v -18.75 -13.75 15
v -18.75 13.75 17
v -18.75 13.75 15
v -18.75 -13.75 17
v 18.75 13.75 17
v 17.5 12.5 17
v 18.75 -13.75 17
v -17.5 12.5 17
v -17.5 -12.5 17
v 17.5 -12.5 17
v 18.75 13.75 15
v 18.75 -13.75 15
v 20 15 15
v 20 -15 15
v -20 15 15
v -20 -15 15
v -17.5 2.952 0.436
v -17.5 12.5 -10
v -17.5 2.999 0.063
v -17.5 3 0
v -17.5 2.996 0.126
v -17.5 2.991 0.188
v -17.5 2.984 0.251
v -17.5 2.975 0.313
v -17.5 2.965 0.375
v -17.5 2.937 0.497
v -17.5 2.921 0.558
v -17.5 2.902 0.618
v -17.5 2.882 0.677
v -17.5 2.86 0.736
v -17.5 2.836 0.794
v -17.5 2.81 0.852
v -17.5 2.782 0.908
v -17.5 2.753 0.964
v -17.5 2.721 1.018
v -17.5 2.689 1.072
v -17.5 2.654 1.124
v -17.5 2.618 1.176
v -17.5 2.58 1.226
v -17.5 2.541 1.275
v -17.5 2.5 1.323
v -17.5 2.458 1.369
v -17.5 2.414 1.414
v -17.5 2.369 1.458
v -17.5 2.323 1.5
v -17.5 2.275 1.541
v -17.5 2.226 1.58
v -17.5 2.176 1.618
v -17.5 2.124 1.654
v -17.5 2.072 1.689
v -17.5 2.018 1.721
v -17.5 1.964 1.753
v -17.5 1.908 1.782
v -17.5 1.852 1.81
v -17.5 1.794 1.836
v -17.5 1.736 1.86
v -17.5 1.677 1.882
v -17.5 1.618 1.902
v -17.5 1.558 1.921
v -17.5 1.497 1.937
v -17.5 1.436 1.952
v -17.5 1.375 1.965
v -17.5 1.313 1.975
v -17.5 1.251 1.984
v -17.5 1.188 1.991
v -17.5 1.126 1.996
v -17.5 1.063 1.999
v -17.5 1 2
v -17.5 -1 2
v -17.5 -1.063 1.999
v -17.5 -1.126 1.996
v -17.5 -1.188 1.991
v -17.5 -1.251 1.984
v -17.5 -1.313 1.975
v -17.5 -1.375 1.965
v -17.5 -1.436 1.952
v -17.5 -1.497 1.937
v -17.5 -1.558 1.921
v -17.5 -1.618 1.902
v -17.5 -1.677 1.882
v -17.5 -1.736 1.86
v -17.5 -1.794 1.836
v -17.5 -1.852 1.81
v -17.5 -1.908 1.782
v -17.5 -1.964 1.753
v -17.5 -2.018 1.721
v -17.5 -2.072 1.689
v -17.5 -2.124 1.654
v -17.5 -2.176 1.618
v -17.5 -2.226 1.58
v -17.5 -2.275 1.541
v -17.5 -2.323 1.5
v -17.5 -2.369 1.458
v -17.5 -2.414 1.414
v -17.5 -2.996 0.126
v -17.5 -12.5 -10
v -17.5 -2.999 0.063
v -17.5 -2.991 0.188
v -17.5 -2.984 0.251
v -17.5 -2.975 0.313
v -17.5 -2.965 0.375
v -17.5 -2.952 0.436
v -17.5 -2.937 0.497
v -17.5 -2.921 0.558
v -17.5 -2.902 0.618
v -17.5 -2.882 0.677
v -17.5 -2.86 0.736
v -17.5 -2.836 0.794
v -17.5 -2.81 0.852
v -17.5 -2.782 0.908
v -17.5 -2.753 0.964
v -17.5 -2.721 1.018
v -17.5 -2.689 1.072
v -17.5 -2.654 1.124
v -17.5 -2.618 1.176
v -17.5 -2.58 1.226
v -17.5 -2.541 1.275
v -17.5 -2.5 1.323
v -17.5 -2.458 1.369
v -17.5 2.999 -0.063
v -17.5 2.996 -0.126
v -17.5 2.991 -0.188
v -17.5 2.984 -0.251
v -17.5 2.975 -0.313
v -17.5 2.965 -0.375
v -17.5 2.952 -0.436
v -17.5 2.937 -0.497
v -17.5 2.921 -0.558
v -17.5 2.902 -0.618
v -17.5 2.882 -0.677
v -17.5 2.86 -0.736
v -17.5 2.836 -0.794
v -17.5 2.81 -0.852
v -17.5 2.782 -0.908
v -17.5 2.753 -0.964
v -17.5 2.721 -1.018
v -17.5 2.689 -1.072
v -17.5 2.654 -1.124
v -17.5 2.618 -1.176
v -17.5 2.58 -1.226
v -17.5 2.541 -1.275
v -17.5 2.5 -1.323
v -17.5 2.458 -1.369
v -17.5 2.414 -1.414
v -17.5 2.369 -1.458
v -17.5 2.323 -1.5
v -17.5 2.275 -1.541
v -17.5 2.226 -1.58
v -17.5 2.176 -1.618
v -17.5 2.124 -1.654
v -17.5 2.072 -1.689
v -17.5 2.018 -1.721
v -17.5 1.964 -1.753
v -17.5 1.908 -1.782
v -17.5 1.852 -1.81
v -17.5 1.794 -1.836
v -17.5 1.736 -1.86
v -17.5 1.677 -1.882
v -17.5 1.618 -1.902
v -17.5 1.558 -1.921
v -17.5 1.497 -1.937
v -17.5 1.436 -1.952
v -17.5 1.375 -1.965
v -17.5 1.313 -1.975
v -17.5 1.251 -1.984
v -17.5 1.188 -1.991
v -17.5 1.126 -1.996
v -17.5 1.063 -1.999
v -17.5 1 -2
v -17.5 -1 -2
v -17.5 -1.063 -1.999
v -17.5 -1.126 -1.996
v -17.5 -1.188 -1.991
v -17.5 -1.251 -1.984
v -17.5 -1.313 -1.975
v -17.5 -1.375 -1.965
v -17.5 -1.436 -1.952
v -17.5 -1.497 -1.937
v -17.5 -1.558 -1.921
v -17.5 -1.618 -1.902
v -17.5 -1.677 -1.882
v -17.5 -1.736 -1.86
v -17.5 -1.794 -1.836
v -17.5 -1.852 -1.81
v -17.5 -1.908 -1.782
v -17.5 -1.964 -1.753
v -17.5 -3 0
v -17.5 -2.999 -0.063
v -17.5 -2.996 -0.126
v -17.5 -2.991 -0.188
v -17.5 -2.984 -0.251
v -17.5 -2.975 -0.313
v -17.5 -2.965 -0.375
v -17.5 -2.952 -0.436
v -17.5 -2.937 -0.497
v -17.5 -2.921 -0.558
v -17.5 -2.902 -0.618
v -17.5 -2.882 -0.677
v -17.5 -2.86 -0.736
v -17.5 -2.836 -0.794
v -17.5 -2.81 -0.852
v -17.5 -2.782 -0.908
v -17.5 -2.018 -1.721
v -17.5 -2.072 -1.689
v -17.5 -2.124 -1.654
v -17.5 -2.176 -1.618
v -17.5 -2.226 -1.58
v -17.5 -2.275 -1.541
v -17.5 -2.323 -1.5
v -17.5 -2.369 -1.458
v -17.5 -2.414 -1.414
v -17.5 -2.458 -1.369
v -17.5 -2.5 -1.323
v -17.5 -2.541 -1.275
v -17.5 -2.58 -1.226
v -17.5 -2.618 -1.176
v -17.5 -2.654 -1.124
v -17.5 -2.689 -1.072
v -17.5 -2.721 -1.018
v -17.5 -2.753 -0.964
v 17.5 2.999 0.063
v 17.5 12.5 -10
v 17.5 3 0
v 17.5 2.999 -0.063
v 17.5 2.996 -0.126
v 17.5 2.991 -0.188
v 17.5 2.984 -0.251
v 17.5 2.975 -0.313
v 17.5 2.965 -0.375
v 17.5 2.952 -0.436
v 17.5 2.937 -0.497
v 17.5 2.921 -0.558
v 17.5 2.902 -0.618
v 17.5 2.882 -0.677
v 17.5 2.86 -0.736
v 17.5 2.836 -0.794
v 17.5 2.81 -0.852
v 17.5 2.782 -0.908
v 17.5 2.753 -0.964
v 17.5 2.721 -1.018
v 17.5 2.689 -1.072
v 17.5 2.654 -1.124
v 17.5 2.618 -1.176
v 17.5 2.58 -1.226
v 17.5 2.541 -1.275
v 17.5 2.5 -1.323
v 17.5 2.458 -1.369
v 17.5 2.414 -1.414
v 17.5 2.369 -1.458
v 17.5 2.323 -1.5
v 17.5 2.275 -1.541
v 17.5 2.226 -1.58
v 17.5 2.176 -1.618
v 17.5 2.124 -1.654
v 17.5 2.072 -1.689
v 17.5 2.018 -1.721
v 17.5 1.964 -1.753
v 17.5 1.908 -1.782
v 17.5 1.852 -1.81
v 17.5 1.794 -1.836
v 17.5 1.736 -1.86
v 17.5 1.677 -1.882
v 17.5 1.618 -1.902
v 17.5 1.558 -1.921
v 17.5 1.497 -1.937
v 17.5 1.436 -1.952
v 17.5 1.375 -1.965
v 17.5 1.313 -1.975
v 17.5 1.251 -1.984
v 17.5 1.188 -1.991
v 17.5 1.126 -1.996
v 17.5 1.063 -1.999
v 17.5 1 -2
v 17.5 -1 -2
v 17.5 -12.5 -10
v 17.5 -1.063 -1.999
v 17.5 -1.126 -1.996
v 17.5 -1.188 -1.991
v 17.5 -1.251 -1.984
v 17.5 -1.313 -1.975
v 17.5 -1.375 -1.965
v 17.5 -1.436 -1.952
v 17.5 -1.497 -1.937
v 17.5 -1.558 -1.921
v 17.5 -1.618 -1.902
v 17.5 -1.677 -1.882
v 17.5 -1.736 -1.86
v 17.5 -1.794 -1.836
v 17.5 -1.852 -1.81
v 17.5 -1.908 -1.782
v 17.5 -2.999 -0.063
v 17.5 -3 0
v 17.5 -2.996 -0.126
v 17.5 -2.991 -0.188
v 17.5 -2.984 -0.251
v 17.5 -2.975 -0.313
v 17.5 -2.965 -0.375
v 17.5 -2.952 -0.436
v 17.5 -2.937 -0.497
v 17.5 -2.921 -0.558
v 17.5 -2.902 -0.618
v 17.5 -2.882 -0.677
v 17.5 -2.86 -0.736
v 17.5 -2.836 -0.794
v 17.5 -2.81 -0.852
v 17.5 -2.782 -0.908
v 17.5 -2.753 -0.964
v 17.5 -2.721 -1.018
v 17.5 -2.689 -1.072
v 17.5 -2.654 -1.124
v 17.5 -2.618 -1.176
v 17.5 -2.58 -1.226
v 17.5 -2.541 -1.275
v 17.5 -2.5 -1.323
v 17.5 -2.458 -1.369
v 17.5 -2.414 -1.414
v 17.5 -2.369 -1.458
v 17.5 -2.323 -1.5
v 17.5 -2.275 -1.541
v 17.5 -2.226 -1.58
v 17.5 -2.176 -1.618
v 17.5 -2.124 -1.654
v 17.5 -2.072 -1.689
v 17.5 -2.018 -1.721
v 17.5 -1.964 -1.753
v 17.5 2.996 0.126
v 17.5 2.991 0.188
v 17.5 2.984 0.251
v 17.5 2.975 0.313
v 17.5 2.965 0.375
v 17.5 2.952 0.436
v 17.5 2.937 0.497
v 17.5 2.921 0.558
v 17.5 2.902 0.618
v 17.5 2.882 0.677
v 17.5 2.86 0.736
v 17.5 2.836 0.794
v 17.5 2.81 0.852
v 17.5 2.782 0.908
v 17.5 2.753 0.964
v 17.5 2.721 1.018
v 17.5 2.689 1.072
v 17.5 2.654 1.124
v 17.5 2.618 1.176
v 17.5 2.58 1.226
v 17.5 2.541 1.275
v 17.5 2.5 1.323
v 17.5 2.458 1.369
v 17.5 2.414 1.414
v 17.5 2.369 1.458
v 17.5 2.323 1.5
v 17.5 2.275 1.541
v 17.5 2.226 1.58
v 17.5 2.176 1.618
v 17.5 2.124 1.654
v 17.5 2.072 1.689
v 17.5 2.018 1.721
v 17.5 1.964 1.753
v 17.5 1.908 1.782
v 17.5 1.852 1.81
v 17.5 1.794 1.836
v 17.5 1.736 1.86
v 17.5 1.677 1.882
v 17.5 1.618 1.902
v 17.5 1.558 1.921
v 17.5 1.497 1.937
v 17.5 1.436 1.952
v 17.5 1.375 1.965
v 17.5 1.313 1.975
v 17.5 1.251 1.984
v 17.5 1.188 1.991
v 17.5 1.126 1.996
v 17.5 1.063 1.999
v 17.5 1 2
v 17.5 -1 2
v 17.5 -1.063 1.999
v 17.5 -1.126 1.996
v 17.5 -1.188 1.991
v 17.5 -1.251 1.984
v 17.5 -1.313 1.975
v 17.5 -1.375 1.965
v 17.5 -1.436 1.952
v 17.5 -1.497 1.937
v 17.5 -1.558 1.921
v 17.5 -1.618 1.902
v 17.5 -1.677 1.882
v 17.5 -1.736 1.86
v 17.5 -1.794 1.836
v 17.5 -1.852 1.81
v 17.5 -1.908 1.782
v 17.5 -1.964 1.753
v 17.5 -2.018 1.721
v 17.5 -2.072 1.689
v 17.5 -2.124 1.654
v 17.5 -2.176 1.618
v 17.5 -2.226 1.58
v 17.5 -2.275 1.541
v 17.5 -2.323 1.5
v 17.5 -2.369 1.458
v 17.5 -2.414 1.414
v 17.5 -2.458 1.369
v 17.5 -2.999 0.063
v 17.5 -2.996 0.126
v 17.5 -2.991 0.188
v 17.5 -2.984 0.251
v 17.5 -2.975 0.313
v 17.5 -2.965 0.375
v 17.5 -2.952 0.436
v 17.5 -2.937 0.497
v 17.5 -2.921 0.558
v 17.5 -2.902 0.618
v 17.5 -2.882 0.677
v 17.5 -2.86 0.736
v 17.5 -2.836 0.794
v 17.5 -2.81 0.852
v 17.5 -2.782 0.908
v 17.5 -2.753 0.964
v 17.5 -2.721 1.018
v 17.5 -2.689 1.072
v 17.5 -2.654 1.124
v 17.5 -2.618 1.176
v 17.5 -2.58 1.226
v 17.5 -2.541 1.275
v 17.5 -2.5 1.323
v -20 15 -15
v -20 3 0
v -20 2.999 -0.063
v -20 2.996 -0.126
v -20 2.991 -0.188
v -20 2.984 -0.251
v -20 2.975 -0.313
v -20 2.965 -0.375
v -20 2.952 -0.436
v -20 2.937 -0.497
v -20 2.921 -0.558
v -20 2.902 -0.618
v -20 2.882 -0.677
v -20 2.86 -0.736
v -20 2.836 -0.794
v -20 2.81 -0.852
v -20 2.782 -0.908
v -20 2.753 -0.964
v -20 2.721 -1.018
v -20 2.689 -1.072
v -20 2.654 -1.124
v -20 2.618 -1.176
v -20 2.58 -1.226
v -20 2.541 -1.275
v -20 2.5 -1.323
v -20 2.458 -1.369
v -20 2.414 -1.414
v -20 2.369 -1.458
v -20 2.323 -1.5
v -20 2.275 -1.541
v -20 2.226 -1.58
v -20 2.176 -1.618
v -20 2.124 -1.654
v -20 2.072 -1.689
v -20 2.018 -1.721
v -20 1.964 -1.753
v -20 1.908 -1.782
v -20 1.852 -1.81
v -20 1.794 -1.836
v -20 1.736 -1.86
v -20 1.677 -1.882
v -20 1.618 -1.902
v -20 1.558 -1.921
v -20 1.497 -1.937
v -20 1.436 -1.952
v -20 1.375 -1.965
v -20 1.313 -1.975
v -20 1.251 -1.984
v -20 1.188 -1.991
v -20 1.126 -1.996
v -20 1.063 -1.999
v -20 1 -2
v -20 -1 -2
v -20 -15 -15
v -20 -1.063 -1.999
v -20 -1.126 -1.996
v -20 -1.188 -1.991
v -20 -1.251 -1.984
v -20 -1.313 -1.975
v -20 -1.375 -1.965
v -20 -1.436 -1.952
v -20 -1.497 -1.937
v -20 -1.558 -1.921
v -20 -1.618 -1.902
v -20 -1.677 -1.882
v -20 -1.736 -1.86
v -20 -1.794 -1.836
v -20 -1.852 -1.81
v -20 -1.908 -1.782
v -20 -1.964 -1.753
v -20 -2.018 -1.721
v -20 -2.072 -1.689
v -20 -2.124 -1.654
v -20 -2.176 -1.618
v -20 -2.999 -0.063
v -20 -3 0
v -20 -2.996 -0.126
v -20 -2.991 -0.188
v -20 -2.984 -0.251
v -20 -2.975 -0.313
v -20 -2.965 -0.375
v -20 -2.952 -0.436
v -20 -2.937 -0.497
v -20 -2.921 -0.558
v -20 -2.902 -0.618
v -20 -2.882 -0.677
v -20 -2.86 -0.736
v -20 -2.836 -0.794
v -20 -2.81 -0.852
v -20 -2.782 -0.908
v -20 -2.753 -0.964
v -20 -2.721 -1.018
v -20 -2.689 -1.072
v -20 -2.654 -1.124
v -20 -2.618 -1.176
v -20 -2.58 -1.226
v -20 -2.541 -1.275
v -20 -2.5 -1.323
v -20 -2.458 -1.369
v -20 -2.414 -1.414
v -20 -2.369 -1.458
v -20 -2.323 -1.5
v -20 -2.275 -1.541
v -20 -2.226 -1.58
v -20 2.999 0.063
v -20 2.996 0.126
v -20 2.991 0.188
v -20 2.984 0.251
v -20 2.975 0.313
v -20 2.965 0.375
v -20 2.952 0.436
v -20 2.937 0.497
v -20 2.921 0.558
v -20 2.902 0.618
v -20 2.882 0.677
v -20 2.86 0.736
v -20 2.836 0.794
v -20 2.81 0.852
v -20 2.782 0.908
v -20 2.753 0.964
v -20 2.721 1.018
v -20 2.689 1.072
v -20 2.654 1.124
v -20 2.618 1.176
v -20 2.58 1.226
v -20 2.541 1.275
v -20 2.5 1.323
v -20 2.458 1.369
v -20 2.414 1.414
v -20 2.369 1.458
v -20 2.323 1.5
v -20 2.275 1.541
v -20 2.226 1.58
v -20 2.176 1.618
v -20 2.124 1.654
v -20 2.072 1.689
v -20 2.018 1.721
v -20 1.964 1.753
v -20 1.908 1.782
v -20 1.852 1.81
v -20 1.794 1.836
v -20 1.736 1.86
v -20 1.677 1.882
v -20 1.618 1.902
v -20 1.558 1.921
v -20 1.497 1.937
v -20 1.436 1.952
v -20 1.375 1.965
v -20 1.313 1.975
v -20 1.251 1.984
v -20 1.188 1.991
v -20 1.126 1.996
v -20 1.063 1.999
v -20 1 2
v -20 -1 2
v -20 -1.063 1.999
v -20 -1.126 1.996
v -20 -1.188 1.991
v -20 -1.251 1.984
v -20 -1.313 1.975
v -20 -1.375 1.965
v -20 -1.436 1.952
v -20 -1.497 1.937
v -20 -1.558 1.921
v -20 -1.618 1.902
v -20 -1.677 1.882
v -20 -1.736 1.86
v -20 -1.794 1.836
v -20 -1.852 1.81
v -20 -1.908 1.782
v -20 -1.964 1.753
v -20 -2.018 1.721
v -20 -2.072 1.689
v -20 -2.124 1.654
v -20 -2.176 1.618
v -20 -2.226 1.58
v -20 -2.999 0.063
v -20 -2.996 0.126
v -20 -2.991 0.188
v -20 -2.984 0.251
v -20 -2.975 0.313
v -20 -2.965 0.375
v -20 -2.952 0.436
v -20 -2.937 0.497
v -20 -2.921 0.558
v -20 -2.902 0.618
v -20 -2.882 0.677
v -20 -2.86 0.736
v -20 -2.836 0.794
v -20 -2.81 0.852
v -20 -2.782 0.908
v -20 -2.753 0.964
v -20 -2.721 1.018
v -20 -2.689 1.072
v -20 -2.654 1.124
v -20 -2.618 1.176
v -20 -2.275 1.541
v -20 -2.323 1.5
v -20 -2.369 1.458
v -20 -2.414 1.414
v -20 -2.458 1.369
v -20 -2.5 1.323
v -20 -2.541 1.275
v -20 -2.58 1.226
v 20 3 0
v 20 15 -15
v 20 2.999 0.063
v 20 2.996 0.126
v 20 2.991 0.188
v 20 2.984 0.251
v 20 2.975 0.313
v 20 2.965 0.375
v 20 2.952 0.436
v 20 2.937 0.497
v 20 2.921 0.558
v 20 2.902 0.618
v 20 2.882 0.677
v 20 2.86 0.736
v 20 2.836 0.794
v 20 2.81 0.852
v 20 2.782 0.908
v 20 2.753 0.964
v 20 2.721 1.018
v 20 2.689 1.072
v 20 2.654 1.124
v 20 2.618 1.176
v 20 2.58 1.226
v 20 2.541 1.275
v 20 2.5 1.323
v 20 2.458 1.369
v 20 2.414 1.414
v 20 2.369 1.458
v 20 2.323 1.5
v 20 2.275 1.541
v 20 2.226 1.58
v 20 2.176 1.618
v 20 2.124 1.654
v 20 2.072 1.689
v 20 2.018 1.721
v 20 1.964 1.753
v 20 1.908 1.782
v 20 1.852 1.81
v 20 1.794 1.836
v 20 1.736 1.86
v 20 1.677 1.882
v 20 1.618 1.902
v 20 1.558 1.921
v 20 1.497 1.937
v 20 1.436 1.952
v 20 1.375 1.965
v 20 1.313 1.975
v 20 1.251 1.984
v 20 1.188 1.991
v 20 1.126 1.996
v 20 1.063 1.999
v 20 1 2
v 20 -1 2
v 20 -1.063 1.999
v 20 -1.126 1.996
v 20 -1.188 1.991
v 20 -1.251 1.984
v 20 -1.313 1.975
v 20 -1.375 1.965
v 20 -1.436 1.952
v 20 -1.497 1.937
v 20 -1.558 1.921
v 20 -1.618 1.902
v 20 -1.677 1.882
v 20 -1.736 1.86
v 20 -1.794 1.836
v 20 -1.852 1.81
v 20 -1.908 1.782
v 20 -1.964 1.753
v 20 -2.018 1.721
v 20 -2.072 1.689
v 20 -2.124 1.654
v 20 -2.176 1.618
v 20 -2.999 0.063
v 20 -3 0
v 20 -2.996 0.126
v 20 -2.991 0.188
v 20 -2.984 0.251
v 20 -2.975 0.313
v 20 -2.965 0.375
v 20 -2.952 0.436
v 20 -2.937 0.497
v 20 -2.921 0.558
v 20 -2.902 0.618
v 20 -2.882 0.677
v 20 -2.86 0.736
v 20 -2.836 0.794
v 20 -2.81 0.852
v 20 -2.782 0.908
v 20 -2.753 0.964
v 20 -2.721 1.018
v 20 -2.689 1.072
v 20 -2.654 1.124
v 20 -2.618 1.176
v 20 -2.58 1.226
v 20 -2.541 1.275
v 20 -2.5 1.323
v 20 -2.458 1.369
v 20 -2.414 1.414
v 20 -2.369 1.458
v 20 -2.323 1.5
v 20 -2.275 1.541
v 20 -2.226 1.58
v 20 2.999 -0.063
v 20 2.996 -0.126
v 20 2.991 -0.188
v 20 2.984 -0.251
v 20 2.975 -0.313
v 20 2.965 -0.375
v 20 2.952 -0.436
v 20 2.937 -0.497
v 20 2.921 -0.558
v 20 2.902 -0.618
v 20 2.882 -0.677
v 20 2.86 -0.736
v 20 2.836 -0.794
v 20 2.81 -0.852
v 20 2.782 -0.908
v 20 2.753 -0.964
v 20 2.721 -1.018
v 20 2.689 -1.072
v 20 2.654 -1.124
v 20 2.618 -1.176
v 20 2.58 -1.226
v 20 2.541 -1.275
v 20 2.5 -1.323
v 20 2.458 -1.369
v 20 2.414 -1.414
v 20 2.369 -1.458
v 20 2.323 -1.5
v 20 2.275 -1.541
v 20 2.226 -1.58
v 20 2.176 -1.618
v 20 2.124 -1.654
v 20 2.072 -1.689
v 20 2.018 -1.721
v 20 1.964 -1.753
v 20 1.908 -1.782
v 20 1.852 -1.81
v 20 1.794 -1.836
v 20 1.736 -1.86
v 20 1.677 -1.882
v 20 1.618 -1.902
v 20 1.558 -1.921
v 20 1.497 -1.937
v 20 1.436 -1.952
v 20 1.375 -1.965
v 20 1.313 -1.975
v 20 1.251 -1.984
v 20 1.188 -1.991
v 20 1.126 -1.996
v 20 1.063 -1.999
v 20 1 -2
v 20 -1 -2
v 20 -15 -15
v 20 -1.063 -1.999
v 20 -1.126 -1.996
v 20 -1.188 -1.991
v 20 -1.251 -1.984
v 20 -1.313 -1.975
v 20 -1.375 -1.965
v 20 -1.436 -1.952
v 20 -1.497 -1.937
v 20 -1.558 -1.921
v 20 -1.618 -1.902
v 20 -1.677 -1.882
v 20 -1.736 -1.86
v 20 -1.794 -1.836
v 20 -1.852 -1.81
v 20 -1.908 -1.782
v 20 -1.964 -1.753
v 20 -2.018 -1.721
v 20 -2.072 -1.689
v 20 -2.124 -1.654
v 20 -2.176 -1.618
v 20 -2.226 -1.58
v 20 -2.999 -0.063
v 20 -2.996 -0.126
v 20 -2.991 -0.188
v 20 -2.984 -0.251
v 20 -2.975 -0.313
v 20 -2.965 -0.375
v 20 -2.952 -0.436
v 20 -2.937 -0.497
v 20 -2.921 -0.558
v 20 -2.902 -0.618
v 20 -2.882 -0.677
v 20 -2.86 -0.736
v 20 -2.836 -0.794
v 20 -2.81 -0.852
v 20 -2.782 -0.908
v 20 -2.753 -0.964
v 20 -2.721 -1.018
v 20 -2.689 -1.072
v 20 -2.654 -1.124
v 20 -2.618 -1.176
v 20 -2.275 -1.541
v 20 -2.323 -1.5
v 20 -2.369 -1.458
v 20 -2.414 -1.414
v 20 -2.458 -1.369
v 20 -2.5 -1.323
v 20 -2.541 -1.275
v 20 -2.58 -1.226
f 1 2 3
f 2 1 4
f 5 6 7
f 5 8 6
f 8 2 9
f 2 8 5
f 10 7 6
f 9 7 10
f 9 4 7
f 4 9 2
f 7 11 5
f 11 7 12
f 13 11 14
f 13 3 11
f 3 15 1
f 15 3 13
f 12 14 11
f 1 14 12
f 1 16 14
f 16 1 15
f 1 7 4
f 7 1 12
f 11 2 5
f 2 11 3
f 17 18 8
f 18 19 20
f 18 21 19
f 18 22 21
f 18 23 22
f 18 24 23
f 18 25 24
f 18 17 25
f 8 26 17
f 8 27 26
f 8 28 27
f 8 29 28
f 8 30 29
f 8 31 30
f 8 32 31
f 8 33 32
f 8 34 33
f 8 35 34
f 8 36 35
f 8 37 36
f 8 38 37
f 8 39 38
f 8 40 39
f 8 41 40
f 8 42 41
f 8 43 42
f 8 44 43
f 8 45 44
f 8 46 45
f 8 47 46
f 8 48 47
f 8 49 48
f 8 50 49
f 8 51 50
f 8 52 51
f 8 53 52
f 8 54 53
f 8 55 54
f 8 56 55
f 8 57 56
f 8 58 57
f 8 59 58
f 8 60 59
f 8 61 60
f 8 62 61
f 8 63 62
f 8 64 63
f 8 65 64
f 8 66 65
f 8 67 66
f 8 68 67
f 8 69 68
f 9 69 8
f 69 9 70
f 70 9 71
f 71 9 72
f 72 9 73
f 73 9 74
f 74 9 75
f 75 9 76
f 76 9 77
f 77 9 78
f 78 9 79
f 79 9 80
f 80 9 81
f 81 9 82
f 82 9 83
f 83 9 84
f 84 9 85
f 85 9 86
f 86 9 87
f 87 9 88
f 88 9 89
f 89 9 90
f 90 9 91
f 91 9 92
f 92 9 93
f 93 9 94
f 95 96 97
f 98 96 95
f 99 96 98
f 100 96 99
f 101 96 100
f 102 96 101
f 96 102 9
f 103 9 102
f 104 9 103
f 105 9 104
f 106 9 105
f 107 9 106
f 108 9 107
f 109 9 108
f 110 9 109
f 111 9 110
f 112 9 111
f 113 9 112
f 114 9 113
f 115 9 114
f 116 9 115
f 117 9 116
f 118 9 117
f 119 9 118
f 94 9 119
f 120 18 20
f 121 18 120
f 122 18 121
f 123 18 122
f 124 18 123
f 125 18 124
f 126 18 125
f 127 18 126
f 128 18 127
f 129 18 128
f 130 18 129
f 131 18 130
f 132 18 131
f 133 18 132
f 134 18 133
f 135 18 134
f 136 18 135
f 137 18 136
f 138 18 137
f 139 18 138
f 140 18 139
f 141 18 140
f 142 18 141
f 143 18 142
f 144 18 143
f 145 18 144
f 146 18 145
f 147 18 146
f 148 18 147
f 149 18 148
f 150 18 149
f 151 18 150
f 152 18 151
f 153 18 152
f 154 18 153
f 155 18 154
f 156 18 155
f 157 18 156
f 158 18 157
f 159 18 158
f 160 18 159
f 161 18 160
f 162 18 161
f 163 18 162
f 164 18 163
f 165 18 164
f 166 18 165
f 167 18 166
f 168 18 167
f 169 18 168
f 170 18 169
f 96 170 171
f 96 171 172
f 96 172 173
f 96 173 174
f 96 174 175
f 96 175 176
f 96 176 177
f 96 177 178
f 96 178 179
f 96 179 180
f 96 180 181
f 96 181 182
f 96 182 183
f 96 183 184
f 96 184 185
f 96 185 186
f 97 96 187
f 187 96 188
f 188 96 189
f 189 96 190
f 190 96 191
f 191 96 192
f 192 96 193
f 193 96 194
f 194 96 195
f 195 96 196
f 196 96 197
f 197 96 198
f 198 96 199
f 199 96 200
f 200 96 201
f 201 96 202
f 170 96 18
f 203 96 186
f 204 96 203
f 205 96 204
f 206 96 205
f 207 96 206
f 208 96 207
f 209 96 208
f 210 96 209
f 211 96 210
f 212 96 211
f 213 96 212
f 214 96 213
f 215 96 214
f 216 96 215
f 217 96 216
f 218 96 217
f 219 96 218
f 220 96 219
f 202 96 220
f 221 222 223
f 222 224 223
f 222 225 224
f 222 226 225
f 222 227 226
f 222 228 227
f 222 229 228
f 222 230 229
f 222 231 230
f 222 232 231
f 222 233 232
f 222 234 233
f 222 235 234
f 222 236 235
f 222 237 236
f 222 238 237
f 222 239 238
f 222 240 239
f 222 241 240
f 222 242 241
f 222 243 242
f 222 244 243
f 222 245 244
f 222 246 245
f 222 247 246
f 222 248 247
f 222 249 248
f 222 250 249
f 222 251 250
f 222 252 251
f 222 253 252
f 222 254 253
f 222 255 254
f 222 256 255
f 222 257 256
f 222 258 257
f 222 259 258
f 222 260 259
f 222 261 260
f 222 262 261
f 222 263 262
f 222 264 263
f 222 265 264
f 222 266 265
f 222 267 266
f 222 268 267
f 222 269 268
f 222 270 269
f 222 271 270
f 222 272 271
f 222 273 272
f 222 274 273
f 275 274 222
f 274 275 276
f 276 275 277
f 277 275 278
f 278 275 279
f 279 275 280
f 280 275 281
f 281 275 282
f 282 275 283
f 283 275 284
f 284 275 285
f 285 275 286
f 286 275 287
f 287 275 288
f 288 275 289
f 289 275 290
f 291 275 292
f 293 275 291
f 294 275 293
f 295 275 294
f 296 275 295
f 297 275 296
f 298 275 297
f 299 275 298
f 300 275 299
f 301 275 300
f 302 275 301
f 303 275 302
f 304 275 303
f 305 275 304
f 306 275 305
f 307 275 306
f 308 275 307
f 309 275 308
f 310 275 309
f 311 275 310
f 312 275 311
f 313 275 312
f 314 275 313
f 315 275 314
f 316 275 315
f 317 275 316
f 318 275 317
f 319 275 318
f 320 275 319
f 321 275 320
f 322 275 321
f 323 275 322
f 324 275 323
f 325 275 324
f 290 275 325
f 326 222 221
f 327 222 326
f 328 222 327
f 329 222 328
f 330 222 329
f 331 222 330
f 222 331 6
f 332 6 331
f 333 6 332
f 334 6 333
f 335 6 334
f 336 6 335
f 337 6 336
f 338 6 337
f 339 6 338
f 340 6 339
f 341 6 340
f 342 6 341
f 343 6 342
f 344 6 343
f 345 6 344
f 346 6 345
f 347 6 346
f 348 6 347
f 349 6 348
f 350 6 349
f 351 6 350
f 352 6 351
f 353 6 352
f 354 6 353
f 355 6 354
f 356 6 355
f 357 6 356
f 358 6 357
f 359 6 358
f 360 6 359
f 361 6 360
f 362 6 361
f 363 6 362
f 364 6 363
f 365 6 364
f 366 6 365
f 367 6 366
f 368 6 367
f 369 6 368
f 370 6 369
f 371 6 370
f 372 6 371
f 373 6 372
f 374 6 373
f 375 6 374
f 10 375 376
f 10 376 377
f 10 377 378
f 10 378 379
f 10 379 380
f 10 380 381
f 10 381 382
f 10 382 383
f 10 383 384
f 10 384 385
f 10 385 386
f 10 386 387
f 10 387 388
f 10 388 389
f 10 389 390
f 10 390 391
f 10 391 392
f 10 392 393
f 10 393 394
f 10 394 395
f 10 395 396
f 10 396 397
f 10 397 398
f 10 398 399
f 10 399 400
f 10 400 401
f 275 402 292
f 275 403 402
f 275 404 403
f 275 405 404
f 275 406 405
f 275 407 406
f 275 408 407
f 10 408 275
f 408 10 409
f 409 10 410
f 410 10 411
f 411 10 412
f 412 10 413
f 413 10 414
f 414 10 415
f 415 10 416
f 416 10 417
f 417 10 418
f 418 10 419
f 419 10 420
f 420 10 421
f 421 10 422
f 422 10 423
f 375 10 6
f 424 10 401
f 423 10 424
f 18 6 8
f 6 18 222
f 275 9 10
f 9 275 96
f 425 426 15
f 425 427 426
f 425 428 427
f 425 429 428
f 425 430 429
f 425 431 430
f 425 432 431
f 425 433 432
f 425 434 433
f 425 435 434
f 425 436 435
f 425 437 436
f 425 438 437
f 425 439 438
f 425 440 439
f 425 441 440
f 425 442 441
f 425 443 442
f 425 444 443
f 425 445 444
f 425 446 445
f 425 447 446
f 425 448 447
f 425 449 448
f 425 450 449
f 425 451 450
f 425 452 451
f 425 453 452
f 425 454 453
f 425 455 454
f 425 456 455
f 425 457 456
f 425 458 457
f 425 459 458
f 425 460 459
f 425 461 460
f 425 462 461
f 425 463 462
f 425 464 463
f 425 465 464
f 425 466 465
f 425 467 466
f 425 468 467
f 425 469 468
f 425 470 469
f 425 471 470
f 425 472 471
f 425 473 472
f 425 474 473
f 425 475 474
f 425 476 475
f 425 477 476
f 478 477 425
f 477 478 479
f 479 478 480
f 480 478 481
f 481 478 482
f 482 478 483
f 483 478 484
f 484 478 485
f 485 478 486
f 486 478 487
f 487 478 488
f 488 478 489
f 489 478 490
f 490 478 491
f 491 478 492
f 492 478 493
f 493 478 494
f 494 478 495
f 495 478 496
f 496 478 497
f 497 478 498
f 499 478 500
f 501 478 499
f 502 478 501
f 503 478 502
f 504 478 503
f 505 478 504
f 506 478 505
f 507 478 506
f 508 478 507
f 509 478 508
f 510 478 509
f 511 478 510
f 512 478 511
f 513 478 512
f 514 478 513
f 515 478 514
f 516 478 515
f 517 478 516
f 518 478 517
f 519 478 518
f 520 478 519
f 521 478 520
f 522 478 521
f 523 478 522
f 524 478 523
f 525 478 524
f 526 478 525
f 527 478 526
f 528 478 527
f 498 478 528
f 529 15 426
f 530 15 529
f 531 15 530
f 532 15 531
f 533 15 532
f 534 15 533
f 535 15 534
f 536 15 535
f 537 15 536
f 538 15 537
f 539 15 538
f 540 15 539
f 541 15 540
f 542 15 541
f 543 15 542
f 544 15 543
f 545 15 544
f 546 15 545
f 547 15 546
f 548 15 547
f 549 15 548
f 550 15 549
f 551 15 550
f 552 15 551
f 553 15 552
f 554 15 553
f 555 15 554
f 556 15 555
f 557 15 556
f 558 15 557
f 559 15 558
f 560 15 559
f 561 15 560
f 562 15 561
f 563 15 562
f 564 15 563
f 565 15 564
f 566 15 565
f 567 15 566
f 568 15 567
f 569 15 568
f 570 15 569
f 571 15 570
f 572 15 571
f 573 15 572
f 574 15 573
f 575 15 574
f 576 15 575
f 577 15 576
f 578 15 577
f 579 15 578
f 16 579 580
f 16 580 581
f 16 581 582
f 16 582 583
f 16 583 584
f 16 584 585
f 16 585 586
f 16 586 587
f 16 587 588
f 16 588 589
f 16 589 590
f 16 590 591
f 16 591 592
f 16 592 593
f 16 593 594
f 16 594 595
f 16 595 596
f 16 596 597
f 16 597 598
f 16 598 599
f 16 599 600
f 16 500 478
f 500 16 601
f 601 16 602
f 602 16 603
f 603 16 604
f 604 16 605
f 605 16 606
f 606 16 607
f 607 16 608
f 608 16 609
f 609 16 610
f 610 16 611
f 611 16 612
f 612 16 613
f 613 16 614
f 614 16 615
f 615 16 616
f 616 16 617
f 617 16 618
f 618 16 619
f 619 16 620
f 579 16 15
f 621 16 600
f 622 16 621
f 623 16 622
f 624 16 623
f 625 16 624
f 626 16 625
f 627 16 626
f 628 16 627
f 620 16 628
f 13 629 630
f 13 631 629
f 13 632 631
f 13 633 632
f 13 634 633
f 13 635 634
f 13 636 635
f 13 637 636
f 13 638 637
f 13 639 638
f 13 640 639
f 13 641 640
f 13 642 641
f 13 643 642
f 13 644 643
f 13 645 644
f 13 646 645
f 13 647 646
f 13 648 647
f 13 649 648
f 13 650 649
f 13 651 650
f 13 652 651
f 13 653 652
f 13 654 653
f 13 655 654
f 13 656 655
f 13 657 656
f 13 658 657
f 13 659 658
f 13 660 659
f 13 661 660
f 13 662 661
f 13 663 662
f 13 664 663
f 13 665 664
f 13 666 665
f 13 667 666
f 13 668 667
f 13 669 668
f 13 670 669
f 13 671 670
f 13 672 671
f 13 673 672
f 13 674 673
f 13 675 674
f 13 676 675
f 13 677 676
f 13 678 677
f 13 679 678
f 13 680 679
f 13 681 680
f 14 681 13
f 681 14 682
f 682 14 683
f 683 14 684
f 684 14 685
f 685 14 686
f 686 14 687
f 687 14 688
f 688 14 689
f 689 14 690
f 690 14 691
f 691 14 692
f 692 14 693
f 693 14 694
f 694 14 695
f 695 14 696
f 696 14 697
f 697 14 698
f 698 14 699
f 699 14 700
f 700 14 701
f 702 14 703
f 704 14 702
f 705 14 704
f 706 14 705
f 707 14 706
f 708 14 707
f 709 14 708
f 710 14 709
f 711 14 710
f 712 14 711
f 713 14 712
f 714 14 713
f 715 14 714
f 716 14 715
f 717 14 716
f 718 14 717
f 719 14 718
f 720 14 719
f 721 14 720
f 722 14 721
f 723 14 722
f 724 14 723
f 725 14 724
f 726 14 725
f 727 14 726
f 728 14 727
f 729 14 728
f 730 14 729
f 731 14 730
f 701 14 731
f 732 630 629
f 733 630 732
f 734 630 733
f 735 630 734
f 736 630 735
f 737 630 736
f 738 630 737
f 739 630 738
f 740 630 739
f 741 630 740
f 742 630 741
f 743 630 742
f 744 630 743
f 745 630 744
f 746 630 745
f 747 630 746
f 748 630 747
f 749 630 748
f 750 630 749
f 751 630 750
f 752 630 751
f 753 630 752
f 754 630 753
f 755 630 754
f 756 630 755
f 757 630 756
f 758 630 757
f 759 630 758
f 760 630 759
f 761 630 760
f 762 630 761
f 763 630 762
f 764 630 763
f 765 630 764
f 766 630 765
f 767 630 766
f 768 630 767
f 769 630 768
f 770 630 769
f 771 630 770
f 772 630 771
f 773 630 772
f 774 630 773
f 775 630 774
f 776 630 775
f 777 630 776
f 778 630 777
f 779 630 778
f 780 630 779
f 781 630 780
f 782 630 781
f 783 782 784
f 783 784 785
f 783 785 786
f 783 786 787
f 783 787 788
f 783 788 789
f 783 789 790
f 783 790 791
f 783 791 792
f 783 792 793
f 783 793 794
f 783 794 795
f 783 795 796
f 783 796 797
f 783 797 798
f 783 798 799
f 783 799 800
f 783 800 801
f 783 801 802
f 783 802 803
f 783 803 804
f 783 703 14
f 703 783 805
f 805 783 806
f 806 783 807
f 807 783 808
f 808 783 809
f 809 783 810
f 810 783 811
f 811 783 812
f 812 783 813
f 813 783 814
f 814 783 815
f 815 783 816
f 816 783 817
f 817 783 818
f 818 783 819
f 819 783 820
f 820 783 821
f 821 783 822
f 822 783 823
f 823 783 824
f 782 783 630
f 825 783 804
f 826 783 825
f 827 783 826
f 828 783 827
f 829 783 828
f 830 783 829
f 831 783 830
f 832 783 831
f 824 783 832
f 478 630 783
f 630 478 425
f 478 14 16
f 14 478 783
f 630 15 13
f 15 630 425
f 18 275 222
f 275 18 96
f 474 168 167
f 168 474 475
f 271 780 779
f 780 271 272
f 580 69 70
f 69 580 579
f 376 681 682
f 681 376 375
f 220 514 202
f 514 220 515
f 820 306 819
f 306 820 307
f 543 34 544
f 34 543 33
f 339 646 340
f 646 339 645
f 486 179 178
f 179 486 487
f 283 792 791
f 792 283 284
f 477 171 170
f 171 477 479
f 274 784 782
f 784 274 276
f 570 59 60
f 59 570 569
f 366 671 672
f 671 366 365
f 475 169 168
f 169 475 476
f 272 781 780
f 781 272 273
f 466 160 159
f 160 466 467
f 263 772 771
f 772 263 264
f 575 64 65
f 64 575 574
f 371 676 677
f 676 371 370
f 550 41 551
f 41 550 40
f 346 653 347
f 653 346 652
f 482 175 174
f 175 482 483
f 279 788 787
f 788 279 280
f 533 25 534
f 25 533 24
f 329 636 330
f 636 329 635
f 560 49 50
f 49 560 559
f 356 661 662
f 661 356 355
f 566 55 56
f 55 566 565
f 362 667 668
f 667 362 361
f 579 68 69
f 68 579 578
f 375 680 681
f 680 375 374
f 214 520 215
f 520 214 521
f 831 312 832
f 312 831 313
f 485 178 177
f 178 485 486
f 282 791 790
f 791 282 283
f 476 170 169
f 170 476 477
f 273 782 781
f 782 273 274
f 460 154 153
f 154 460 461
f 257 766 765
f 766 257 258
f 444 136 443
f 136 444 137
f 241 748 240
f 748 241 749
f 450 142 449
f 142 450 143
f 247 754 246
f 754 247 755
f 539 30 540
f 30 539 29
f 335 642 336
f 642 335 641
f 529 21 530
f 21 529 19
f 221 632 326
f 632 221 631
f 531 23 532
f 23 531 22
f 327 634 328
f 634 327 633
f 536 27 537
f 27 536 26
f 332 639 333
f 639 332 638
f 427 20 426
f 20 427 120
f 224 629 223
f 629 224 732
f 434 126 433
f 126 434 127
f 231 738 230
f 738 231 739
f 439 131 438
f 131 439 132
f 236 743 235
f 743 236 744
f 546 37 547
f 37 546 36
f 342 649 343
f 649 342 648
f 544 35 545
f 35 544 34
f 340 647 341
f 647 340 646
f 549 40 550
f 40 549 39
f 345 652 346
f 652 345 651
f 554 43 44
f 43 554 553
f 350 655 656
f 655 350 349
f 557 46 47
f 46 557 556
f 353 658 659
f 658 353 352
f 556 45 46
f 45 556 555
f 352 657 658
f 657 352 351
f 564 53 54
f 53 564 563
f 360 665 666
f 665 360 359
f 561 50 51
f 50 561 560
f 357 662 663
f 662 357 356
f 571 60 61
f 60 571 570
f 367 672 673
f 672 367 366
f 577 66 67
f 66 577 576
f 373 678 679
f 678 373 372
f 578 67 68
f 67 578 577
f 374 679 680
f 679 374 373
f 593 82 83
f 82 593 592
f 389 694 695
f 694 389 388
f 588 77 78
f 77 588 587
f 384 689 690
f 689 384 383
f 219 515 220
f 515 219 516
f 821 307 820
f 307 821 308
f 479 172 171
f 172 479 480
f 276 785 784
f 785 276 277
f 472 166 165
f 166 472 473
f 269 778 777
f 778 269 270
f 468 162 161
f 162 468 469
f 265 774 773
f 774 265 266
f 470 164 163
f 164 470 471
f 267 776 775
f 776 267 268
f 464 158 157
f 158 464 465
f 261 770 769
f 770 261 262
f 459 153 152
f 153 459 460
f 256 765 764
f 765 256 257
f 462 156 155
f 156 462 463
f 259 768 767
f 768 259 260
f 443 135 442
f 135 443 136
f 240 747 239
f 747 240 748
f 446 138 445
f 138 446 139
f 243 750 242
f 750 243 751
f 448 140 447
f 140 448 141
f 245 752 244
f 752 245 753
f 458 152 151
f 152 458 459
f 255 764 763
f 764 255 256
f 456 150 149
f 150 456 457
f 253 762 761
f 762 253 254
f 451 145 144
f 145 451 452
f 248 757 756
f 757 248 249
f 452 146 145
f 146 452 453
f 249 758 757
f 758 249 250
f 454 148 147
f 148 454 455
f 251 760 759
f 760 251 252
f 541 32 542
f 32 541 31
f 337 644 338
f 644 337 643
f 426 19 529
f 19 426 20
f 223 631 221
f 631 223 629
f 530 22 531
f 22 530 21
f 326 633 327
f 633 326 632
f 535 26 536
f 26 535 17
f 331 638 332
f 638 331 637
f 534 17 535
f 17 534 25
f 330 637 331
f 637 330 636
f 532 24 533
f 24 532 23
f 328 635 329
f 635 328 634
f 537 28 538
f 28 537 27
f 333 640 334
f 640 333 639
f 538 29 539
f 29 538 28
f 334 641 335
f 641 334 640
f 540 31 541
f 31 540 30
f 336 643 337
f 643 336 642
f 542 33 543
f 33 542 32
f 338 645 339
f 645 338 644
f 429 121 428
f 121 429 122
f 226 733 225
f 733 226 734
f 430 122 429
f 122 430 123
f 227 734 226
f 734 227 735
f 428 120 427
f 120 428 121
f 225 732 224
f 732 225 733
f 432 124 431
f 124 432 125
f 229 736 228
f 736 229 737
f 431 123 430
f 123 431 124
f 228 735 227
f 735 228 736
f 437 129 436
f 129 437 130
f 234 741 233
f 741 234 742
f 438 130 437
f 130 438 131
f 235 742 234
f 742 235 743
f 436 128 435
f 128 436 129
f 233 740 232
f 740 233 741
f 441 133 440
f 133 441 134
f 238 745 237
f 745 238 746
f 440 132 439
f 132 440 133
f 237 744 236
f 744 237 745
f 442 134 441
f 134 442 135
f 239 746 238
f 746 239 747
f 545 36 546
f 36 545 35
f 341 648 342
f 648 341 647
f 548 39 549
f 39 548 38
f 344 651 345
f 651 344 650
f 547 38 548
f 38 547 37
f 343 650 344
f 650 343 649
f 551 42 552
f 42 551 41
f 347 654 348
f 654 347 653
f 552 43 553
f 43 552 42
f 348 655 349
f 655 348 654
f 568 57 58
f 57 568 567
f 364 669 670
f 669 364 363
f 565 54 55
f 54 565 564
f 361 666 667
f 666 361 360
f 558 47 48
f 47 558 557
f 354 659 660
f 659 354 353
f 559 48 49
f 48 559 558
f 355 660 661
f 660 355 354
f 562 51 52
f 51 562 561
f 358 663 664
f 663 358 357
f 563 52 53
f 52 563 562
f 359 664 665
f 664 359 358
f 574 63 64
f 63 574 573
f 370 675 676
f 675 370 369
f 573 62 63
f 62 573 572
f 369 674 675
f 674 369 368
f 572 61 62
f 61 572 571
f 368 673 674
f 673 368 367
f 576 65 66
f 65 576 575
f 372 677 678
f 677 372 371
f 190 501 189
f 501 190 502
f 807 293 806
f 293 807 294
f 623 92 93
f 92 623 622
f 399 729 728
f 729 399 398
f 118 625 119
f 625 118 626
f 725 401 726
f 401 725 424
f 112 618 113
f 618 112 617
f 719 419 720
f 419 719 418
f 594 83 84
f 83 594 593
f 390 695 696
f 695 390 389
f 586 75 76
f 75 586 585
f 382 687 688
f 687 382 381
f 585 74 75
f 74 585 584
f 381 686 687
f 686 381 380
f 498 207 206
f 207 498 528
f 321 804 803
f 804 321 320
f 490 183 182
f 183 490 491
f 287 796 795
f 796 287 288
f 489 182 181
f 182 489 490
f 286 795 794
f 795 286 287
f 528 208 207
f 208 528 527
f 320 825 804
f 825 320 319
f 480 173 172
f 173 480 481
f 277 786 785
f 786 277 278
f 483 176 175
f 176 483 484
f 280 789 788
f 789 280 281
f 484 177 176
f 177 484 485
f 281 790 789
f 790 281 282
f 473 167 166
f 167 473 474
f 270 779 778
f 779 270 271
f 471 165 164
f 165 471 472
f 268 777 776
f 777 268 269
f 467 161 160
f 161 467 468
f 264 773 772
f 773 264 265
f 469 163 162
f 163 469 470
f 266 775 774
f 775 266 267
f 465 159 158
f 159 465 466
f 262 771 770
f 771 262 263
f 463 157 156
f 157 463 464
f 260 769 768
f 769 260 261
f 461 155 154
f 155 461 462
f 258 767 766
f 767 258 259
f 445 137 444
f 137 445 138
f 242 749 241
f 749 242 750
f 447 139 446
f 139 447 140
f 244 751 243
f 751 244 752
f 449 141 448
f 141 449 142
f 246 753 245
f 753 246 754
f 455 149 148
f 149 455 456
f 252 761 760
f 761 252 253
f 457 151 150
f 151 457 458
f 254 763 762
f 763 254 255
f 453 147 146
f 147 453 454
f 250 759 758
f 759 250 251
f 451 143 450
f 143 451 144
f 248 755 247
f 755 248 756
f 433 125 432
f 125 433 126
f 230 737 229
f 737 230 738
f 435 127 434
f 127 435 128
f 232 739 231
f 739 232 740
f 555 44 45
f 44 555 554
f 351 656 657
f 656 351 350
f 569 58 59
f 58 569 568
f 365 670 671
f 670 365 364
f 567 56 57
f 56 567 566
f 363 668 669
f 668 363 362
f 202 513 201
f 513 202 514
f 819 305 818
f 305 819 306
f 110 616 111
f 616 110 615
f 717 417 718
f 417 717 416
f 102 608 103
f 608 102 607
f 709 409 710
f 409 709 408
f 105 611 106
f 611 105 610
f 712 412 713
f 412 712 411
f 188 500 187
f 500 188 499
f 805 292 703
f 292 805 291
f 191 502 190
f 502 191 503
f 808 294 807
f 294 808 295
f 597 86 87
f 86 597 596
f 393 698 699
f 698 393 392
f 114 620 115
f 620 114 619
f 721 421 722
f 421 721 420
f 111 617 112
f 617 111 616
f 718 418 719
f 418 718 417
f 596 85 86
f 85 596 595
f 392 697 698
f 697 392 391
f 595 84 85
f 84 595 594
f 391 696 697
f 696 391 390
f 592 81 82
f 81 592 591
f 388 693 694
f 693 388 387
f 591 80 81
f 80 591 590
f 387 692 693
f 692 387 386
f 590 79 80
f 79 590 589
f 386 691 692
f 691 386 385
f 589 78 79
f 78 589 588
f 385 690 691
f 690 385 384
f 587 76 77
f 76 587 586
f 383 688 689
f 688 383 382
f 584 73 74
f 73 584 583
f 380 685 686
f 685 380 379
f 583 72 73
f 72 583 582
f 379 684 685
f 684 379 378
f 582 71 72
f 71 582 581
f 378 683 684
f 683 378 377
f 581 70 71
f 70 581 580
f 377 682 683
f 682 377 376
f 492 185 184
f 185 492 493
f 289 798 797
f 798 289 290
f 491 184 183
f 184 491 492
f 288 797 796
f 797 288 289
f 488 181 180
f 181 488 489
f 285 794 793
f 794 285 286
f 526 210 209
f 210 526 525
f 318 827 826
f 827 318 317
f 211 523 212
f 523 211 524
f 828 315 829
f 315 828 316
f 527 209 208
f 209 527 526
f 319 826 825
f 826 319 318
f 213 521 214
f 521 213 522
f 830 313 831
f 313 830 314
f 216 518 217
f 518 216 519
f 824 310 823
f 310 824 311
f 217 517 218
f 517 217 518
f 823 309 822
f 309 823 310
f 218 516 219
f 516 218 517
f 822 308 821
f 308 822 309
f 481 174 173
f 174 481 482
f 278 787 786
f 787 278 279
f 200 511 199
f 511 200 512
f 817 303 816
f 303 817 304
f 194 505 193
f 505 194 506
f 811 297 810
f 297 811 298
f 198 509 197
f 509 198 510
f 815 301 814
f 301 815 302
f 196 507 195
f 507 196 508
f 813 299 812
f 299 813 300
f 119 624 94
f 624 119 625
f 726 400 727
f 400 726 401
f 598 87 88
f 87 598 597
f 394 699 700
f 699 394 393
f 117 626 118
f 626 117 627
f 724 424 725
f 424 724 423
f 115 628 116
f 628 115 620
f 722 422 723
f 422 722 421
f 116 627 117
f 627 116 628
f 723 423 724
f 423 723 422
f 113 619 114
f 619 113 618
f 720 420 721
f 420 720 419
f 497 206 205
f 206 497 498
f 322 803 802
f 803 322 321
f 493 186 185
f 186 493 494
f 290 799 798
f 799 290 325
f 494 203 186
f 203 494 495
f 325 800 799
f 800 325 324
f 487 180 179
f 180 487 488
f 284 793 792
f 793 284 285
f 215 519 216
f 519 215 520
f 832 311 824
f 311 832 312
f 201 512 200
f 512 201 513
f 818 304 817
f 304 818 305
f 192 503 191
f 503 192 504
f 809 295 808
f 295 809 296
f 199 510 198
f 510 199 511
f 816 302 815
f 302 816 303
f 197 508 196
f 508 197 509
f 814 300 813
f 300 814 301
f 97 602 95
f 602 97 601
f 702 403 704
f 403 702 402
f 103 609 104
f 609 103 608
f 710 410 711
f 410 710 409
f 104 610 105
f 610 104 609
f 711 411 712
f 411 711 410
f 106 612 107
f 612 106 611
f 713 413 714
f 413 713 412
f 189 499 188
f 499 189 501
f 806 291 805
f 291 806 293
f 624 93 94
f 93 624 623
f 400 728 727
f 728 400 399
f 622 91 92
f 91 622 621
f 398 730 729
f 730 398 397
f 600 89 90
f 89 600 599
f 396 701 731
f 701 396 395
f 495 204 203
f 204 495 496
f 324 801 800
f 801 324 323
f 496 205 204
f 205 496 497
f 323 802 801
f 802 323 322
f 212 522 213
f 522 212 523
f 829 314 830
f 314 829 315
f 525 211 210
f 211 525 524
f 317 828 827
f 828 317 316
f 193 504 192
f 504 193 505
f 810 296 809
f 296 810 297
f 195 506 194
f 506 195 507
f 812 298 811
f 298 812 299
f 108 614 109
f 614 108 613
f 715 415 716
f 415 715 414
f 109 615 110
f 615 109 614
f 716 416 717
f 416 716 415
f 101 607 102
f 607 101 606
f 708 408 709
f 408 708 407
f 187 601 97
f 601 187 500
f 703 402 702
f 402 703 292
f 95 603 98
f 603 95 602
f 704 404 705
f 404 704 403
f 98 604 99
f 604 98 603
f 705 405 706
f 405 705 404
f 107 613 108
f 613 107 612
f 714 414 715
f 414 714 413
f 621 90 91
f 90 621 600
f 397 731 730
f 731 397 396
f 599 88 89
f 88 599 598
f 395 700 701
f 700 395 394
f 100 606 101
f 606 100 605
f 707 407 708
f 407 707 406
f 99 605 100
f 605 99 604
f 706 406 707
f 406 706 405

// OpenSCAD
$fn=200;

difference(){
    cube([40,30,30],center=true);
    translate([0,0,5])cube([40-5,30-5,30],center=true);
    hull()
    {
         translate([0,1,0])rotate([0,90,0])cylinder(h=50,r=2, center = true);
         translate([0,-1,0])rotate([0,90,0])cylinder(h=50,r=2, center = true);
        }
}

difference(){
    translate([0,0,30/2+1])cube([40-2.5,30-2.5,2],center=true);
    translate([0,0,30/2+1])cube([40-5,30-5,2],center=true);
}
